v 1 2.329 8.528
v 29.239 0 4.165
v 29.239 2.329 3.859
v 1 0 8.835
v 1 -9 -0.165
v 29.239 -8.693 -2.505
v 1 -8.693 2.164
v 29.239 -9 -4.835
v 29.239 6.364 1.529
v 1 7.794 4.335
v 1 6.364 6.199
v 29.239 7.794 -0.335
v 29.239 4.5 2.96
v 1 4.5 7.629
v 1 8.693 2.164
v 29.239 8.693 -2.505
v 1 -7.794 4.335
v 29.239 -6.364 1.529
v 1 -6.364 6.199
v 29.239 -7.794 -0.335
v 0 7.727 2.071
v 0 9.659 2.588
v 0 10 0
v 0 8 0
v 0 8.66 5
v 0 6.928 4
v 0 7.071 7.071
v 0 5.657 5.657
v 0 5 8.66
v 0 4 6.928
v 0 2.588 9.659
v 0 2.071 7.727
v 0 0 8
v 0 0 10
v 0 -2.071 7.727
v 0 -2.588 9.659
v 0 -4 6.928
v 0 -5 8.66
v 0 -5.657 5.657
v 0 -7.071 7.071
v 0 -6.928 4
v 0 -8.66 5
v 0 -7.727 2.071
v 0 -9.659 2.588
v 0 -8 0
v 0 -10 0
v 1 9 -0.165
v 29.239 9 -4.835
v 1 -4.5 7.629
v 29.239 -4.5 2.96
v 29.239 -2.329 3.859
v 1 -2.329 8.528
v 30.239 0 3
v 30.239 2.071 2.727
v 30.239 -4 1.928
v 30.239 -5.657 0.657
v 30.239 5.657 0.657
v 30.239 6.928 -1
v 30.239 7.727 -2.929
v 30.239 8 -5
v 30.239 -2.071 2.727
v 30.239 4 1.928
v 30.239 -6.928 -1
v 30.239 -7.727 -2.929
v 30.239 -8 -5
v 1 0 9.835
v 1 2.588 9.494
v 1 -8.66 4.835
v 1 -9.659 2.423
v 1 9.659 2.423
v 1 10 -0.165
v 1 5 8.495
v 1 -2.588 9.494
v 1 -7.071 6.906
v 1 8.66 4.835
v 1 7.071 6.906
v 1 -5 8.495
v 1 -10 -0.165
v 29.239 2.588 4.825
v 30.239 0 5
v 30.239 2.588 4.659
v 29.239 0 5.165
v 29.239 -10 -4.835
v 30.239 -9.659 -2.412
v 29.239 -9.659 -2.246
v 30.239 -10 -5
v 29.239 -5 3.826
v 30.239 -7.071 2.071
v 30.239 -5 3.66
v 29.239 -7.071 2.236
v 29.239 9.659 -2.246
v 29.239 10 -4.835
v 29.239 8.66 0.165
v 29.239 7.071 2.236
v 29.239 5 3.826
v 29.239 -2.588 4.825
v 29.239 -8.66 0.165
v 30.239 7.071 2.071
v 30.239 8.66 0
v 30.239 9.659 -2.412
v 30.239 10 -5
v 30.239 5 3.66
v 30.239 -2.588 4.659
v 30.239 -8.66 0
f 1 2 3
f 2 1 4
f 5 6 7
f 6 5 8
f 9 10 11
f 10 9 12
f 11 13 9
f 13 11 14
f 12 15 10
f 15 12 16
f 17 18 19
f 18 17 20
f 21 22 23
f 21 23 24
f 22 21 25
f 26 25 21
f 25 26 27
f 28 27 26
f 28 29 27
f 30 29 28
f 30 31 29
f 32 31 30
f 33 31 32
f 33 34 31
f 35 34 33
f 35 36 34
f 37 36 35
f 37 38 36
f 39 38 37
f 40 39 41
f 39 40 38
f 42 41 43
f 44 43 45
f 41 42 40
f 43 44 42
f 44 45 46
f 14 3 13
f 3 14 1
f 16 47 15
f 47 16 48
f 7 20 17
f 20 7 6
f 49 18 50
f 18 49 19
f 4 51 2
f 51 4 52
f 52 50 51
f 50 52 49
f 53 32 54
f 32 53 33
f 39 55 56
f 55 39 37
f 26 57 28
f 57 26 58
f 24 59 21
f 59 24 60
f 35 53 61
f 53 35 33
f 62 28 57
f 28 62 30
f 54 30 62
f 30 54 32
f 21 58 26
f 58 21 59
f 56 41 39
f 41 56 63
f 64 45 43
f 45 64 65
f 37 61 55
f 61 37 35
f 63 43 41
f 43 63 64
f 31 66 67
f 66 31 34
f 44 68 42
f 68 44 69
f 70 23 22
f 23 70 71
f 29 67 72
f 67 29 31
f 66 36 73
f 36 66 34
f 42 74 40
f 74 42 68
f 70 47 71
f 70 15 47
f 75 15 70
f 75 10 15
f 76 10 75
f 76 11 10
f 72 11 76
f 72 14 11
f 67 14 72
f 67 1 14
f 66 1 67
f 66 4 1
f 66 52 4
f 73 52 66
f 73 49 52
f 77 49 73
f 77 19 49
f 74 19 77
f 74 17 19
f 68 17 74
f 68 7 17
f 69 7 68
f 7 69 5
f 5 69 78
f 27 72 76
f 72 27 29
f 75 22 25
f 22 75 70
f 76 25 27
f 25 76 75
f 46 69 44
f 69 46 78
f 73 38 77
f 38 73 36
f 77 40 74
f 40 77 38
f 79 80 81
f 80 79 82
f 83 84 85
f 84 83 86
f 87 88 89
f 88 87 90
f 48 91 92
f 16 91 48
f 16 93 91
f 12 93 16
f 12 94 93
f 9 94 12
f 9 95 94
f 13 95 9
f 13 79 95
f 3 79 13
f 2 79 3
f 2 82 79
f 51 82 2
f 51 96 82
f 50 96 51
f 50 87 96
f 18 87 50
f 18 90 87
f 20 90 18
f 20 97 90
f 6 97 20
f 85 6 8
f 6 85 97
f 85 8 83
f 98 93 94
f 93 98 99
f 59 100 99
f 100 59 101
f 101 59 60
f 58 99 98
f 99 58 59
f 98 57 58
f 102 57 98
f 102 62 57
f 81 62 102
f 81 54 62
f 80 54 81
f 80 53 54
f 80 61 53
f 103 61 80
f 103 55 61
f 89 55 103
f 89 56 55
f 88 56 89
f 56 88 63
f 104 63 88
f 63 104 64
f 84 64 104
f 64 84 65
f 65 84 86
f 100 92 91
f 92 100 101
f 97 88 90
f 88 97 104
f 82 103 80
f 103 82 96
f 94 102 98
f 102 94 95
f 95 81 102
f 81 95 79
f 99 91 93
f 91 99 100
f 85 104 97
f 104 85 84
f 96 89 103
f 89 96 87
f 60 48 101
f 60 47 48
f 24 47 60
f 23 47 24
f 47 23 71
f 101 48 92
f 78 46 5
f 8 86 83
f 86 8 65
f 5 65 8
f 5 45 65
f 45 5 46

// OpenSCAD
// file: ../build_environments.scad
// build_environments.scad: modules to build level sections
//

module pool(diameter=10.0, wall_height=2.0, step_width=3.0, connections=[])
{
    difference() {
        union() {
        difference() {
            cylinder(h=0.5,r1=diameter+step_width,r2=diameter+step_width,$fn=48);
            translate([0,0,-0.1])
                cylinder(h=0.7,r1=diameter,r2=diameter,$fn=48);
        }
        difference() {
            cylinder(h=wall_height,r1=diameter+step_width+1.0,r2=diameter+step_width+1.0,$fn=48);
            translate([0,0,-0.1])
                cylinder(h=wall_height+0.2,r1=diameter+step_width,r2=diameter+step_width,$fn=48);
        }
        }
    
        for (c = connections)
        {
            rotate([0,90,0]) {
                angle = atan2(c[1],c[0]);
                rotate([-angle,0,0]) {
                    cylinder(h=diameter+5.0,r1=c[2],r2=c[2],$fn=48);
                }
            }
        }
    }
}

module straight(length=10.0, width=2.0, dy1=0.0, dy2=0.0, dz=0.0)
{
    dims = [0, 0, 0, 0, 0, (dz/length)];
    matrix = [
        [ 1, dims[0], dims[1], 0 ],
        [ dims[2], 1, dims[4], 0 ],
        [ dims[5], dims[3], 1, 0 ],
        [ 0, 0, 0, 1 ]
    ];
    multmatrix(matrix)
    difference() {
        translate([dy1,0,0])
        union() {
            rotate([0,90,0]) {
                difference() {
                    cylinder(h=(length-dy1-dy2),r1=width+1.0,r2=width+1.0,$fn=24);
                    translate([0,0,-0.1])
                        cylinder(h=(length-dy1-dy2+0.2),r1=width,r2=width,$fn=24);
                }
                difference() {
                    cylinder(h=1.0,r1=width+2.0,r2=width+2.0,$fn=24);
                    translate([0,0,-0.1])
                        cylinder(h=1.2,r1=width,r2=width,$fn=24);
                }
                translate([0,0,(length-dy1-dy2)-1.0]) {
                    difference() {
                        cylinder(h=1.0,r1=width+2.0,r2=width+2.0,$fn=24);
                        translate([0,0,-0.1])
                            cylinder(h=1.2,r1=width,r2=width,$fn=24);
                    }
                }
            }
        }
        translate([0,0,-(2*width+4.0)/2])
            cube([3*length,3*length,2*width+4.0],center=true);
    }
}

module curve(p0=[0,0], center=[0,0], dir=1, angle=0.0, width=2.0)
{
    radius = sqrt((p0[0]-center[0])*(p0[0]-center[0]) + (p0[1]-center[1])*(p0[1]-center[1]));
    if (dir == 0) {
        difference() {
            rotate([0,0,-90])
            difference() {
                rotate_extrude(angle = angle, convexity = 10, $fn=32)
                    translate([radius, 0, 0])
                        circle(r = width+1.0,$fn=24);
                rotate([0,0,-1.0])
                    rotate_extrude(angle = angle+2.0, convexity = 10, $fn=32)
                        translate([radius, 0, 0])
                            circle(r = width,$fn=24);
            }
            translate([0,0,-(2*width+4.0)/2])
                cube([5*radius,5*radius,2*width+4.0],center=true);
        }
    }
    else {
        difference() {
            rotate([0,0,90])
            difference() {
                rotate_extrude(angle = -angle, convexity = 10, $fn=32)
                    translate([radius, 0, 0])
                        circle(r = width+1.0,$fn=24);
                rotate([0,0,1.0])
                    rotate_extrude(angle = -angle-2.0, convexity = 10, $fn=32)
                        translate([radius, 0, 0])
                            circle(r = width,$fn=24);
            }
            translate([0,0,-(2*width+4.0)/2])
                cube([5*radius,5*radius,2*width+4.0],center=true);
        }
    }

}

// test pool
//pool(diameter=12.0000, wall_height=3.0000, step_width=3.0000, connections=[[0.0000,-26.0000,2.0000], [23.6074,0.0000,2.0000]]);

// test straight, slope
//straight(length=26.0000, width=2.0000, dy1=11.8322, dy2=6.7082, dz=0.0000);
//straight(length=29.1549, width=12.0000, dy1=0.0000, dy2=0.0000, dz=-15.0000);

// test curve
//curve(p0=[23.6074, 0.0000], center=[23.6074, 5.0000], dir=0, angle=60.1011, width=2.0000);
//curve(p0=[33.6426, 12.4219], center=[37.9771, 9.9295], dir=1, angle=120.4627, width=2.0000);
// main file
use <../build_environments.scad>;
straight(length=30.2391, width=8.0000, dy1=0.0000, dy2=0.0000, dz=-5.0000);
